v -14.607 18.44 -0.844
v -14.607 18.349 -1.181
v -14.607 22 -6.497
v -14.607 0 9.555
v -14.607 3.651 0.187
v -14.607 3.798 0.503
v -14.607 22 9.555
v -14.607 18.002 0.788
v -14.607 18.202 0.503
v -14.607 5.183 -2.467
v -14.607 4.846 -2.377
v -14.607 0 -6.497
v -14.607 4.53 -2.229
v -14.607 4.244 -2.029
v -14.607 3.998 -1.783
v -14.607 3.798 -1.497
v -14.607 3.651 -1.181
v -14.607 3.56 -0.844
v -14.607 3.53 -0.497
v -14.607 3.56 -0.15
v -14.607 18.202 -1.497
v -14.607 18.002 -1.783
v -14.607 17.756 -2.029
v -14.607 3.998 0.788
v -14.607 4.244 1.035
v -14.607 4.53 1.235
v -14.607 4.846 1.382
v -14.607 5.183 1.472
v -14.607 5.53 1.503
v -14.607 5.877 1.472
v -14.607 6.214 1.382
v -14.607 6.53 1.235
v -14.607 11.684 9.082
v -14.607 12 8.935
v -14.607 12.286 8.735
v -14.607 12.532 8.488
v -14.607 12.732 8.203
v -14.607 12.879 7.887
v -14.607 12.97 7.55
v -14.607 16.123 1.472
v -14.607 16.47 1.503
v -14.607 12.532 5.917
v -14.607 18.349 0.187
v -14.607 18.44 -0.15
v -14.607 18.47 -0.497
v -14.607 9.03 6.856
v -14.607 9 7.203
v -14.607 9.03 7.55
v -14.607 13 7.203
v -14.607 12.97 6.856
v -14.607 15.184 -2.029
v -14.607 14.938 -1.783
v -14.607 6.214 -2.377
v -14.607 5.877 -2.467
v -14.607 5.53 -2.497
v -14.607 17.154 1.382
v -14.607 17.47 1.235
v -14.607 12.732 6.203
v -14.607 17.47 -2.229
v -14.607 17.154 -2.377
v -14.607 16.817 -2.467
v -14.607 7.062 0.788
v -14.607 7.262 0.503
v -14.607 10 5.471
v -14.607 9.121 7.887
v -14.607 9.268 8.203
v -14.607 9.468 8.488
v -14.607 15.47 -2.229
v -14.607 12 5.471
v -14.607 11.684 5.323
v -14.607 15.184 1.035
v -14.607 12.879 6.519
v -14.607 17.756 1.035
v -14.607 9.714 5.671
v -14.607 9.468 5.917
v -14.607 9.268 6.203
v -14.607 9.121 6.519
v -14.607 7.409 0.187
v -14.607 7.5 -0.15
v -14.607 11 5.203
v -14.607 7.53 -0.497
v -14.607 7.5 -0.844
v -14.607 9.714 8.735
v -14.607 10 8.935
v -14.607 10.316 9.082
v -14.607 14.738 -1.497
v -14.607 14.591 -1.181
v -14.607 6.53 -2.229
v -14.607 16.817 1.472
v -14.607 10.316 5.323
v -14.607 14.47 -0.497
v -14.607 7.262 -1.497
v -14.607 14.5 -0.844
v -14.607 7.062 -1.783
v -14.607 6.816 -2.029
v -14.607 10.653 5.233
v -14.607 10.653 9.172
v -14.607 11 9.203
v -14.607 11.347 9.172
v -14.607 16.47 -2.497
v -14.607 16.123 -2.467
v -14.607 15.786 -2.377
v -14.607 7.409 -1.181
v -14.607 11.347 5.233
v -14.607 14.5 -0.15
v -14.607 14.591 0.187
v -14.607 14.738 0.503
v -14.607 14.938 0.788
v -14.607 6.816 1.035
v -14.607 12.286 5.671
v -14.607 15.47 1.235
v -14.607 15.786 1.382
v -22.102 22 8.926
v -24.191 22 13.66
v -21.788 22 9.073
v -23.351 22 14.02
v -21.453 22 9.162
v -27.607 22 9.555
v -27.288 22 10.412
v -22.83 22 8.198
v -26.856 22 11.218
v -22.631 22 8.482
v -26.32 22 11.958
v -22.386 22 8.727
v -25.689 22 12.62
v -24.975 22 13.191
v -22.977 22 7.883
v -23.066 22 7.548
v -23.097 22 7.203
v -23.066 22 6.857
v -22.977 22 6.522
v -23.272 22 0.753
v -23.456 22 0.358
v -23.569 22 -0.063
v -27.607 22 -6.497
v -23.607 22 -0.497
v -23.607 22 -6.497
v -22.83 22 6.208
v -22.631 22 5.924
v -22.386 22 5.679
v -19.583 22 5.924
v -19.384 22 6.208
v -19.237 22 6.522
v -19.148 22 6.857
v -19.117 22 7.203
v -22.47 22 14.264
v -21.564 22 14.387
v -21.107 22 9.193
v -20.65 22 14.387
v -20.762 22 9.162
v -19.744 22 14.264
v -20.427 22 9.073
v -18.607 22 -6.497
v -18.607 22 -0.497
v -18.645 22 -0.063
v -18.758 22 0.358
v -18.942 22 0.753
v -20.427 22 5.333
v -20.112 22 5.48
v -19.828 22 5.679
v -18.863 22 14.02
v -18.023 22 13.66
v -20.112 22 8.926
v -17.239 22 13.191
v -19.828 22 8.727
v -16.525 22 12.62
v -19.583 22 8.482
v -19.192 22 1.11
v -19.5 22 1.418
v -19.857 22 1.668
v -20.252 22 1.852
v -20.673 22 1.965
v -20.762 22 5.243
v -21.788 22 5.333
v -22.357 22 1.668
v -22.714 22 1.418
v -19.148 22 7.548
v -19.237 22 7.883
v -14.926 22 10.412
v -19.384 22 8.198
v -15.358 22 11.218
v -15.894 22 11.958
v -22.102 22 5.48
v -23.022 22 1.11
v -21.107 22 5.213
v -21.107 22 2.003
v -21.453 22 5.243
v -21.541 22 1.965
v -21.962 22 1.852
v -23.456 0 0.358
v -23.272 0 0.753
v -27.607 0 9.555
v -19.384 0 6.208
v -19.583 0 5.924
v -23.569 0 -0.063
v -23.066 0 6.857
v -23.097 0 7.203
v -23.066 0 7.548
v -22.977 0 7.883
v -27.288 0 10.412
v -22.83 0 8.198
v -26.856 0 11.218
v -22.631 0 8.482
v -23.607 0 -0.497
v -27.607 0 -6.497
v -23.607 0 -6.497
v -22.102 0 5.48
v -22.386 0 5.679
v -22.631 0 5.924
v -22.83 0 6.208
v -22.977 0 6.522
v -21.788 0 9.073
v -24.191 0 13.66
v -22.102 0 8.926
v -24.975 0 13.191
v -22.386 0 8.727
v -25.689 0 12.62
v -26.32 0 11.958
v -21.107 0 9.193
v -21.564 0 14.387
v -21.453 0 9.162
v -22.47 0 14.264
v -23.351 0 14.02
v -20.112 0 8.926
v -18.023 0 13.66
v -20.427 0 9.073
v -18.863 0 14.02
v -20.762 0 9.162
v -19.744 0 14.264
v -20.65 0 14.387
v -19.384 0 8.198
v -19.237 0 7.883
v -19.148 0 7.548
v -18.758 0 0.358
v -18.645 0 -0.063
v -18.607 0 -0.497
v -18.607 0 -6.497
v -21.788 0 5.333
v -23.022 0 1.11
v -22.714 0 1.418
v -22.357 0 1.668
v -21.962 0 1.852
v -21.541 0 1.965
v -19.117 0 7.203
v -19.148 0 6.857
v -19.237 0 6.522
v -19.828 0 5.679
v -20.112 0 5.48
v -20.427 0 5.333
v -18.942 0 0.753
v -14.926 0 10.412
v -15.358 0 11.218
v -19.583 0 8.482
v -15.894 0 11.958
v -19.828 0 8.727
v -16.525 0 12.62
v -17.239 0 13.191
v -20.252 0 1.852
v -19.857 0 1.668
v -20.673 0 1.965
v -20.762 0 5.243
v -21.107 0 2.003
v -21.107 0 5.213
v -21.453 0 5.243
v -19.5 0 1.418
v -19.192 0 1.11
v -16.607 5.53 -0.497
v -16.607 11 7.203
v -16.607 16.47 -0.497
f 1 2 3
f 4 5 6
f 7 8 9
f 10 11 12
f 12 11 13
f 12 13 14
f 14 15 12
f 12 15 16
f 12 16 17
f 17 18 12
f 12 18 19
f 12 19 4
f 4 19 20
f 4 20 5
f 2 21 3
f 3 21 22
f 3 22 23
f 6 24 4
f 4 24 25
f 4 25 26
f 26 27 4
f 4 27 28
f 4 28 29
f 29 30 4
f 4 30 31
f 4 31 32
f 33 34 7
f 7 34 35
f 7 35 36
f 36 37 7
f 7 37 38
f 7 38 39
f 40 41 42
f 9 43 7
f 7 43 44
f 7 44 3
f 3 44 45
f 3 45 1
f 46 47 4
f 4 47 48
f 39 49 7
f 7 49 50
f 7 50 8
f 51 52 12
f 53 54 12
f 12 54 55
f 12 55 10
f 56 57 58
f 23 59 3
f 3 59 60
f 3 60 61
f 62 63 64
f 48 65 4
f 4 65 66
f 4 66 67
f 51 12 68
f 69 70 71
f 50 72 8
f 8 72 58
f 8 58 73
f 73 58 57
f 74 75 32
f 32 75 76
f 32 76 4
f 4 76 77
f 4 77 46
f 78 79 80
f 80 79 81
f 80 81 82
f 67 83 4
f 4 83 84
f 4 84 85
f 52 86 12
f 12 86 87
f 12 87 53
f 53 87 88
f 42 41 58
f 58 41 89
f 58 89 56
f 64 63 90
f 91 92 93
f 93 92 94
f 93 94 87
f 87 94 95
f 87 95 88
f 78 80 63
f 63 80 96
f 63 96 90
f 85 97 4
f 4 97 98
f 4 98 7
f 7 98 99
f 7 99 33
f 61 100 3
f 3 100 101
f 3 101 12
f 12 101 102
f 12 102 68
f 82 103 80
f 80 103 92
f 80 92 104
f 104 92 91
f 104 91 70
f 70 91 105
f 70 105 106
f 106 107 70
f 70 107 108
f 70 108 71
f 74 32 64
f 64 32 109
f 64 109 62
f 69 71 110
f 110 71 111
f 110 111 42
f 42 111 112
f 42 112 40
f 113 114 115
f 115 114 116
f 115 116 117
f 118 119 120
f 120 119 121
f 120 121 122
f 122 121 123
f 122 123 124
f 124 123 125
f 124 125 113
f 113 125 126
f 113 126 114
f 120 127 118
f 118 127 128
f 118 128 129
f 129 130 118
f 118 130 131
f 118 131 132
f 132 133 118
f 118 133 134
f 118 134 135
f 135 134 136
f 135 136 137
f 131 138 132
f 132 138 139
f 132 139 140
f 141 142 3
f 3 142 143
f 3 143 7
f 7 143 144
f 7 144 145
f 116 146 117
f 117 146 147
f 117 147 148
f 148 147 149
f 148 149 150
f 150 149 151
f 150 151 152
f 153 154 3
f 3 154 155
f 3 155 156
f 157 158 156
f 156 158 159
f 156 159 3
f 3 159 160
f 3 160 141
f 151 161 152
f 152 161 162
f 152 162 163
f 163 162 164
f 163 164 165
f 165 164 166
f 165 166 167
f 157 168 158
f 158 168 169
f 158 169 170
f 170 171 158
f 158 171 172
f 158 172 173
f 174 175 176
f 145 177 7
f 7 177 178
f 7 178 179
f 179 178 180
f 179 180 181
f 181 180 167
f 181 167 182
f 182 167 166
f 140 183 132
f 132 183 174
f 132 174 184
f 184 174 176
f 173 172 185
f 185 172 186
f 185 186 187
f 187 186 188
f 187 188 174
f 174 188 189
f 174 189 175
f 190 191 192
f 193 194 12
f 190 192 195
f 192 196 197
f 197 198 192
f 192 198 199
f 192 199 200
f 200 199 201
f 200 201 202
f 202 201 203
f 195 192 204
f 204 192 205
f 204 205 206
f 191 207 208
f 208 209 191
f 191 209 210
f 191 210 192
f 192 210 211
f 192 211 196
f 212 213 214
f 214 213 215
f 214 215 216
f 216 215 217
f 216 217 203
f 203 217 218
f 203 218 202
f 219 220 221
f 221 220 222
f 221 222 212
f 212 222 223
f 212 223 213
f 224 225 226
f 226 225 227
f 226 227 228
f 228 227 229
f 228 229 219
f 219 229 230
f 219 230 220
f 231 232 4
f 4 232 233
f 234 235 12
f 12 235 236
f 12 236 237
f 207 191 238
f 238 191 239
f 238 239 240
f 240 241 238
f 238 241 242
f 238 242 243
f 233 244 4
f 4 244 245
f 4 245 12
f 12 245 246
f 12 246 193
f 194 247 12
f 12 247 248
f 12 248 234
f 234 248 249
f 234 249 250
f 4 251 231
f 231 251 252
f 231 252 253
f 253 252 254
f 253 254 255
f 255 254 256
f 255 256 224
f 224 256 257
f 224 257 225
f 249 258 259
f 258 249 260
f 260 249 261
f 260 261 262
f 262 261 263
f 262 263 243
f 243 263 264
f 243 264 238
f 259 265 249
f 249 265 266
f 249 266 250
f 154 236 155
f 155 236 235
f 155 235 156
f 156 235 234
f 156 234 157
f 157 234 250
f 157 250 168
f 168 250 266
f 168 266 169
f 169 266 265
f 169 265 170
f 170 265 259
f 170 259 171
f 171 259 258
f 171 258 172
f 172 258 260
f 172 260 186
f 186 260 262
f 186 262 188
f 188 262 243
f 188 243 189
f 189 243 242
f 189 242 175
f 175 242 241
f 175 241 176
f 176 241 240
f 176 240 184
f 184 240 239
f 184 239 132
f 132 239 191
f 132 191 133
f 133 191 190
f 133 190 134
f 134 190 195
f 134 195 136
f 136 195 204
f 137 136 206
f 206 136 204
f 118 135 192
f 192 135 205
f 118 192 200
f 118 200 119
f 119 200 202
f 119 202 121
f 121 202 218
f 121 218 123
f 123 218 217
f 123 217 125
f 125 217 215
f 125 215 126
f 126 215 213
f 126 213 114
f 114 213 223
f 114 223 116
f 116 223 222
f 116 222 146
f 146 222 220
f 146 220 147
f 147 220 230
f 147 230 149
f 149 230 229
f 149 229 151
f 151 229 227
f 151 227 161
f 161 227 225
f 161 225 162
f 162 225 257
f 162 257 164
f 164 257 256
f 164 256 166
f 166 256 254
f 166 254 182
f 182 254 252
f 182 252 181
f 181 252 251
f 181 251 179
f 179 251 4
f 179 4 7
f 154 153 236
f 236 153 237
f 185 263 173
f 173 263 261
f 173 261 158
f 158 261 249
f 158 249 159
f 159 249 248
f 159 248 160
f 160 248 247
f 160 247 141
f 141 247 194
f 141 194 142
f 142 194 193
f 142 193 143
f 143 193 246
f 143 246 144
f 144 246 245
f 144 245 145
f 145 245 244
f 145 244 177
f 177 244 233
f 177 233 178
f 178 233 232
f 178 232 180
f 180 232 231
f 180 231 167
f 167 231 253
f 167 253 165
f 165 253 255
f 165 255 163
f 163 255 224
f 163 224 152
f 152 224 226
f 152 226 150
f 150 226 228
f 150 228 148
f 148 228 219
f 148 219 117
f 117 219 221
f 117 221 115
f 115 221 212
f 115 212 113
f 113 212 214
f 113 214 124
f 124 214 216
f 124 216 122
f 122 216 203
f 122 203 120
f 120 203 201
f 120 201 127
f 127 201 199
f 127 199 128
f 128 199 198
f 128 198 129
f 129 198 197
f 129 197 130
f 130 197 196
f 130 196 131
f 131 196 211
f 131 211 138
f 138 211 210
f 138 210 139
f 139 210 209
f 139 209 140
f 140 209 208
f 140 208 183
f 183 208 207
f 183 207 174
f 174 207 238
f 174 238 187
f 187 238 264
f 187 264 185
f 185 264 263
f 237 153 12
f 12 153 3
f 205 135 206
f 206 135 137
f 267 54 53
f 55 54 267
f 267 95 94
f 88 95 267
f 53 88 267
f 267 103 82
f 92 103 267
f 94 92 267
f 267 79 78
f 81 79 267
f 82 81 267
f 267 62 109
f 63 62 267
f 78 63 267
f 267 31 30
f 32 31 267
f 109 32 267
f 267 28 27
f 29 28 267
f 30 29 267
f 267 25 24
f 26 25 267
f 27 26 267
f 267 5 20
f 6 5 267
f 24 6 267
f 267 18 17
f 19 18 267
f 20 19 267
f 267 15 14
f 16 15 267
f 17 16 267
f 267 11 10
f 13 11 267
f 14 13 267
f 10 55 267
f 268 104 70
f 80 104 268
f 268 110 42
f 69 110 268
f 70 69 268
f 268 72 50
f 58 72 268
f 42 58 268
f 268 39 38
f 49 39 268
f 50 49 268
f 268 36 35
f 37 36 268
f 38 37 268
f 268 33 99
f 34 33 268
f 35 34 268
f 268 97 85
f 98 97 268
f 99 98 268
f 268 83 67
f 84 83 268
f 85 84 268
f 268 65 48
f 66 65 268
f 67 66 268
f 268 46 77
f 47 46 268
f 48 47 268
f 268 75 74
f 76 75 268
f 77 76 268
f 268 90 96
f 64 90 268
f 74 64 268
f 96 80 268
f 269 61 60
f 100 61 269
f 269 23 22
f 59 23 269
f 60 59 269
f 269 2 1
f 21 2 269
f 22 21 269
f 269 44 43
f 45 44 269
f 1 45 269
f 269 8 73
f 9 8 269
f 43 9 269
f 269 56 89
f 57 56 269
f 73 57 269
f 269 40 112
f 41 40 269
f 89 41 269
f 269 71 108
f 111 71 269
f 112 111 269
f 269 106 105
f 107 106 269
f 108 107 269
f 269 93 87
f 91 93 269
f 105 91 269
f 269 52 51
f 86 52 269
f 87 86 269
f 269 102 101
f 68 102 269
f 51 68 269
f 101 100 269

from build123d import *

# Parameters (mm, degrees)
SKETCH1_R           = 1.98968489
BOSS_EXTRUDE2_DEPTH = 22
SKETCH8_W           = 4
SKETCH8_H           = 22
BOSS_EXTRUDE4_DEPTH = 1


with BuildPart() as part:
    # Sketch1 → Boss-Extrude2 (new body)
    with BuildSketch(Plane(origin=(0, 0, 0), x_dir=(1, 0, 0), z_dir=(0, 1, 0))):
        with BuildLine():
            Line((-18.607019748, 0.497178681), (-18.607019748, 5.497178681))
            Line((-18.607019748, 5.497178681), (-14.607019748, 5.497178681))
            Line((-14.607019748, 5.497178681), (-14.607019748, -9.555359754))
            ThreePointArc((-14.607019748, -9.555359754), (-21.107019748, -14.402142963), (-27.607019748, -9.555359754))
            Line((-27.607019748, -9.555359754), (-27.607019748, 5.497178681))
            Line((-27.607019748, 5.497178681), (-23.607019748, 5.497178681))
            Line((-23.607019748, 5.497178681), (-23.607019748, 0.497178681))
            ThreePointArc((-23.607019748, 0.497178681), (-21.107019748, -2.002821319), (-18.607019748, 0.497178681))
        make_face()
        with Locations(Location((-21.107019748, -7.202821319, 0), (0, 0, 270))):
            Circle(SKETCH1_R, mode=Mode.SUBTRACT)
    extrude(amount=BOSS_EXTRUDE2_DEPTH)

    # Sketch8 → Boss-Extrude4 (add)
    with BuildSketch(Plane(origin=(0, 0, -5.497178681), x_dir=(-1, 0, 0), z_dir=(0, 0, -1))):
        with Locations((16.607019748, 11)):
            Rectangle(SKETCH8_W, SKETCH8_H)
        with Locations((25.607019748, 11)):
            Rectangle(SKETCH8_W, SKETCH8_H)
    extrude(amount=BOSS_EXTRUDE4_DEPTH)

    # Cut-Extrude1 cone 1 section (through the dimple's axis) → Cut-Extrude1 (revolve, cut)
    with BuildSketch(Plane(origin=(-14.607019748, 11, 7.202821319), x_dir=(0, 0, -1), z_dir=(0, 1, 0))):
        Polygon((0, 0), (2, 0), (0, 2), align=None)
    revolve(axis=Axis((-14.607019748, 11, 7.202821319), (-1, 0, 0)), mode=Mode.SUBTRACT)

    # Cut-Extrude1 cone 2 section (through the dimple's axis) → Cut-Extrude1 cone 2 (revolve, cut)
    with BuildSketch(Plane(origin=(-14.607019748, 16.470043573, -0.497178681), x_dir=(0, 0, -1), z_dir=(0, 1, 0))):
        Polygon((0, 0), (2, 0), (0, 2), align=None)
    revolve(axis=Axis((-14.607019748, 16.470043573, -0.497178681), (-1, 0, 0)), mode=Mode.SUBTRACT)

    # Cut-Extrude1 cone 3 section (through the dimple's axis) → Cut-Extrude1 cone 3 (revolve, cut)
    with BuildSketch(Plane(origin=(-14.607019748, 5.529956427, -0.497178681), x_dir=(0, 0, -1), z_dir=(0, 1, 0))):
        Polygon((0, 0), (2, 0), (0, 2), align=None)
    revolve(axis=Axis((-14.607019748, 5.529956427, -0.497178681), (-1, 0, 0)), mode=Mode.SUBTRACT)


solid = part.part
